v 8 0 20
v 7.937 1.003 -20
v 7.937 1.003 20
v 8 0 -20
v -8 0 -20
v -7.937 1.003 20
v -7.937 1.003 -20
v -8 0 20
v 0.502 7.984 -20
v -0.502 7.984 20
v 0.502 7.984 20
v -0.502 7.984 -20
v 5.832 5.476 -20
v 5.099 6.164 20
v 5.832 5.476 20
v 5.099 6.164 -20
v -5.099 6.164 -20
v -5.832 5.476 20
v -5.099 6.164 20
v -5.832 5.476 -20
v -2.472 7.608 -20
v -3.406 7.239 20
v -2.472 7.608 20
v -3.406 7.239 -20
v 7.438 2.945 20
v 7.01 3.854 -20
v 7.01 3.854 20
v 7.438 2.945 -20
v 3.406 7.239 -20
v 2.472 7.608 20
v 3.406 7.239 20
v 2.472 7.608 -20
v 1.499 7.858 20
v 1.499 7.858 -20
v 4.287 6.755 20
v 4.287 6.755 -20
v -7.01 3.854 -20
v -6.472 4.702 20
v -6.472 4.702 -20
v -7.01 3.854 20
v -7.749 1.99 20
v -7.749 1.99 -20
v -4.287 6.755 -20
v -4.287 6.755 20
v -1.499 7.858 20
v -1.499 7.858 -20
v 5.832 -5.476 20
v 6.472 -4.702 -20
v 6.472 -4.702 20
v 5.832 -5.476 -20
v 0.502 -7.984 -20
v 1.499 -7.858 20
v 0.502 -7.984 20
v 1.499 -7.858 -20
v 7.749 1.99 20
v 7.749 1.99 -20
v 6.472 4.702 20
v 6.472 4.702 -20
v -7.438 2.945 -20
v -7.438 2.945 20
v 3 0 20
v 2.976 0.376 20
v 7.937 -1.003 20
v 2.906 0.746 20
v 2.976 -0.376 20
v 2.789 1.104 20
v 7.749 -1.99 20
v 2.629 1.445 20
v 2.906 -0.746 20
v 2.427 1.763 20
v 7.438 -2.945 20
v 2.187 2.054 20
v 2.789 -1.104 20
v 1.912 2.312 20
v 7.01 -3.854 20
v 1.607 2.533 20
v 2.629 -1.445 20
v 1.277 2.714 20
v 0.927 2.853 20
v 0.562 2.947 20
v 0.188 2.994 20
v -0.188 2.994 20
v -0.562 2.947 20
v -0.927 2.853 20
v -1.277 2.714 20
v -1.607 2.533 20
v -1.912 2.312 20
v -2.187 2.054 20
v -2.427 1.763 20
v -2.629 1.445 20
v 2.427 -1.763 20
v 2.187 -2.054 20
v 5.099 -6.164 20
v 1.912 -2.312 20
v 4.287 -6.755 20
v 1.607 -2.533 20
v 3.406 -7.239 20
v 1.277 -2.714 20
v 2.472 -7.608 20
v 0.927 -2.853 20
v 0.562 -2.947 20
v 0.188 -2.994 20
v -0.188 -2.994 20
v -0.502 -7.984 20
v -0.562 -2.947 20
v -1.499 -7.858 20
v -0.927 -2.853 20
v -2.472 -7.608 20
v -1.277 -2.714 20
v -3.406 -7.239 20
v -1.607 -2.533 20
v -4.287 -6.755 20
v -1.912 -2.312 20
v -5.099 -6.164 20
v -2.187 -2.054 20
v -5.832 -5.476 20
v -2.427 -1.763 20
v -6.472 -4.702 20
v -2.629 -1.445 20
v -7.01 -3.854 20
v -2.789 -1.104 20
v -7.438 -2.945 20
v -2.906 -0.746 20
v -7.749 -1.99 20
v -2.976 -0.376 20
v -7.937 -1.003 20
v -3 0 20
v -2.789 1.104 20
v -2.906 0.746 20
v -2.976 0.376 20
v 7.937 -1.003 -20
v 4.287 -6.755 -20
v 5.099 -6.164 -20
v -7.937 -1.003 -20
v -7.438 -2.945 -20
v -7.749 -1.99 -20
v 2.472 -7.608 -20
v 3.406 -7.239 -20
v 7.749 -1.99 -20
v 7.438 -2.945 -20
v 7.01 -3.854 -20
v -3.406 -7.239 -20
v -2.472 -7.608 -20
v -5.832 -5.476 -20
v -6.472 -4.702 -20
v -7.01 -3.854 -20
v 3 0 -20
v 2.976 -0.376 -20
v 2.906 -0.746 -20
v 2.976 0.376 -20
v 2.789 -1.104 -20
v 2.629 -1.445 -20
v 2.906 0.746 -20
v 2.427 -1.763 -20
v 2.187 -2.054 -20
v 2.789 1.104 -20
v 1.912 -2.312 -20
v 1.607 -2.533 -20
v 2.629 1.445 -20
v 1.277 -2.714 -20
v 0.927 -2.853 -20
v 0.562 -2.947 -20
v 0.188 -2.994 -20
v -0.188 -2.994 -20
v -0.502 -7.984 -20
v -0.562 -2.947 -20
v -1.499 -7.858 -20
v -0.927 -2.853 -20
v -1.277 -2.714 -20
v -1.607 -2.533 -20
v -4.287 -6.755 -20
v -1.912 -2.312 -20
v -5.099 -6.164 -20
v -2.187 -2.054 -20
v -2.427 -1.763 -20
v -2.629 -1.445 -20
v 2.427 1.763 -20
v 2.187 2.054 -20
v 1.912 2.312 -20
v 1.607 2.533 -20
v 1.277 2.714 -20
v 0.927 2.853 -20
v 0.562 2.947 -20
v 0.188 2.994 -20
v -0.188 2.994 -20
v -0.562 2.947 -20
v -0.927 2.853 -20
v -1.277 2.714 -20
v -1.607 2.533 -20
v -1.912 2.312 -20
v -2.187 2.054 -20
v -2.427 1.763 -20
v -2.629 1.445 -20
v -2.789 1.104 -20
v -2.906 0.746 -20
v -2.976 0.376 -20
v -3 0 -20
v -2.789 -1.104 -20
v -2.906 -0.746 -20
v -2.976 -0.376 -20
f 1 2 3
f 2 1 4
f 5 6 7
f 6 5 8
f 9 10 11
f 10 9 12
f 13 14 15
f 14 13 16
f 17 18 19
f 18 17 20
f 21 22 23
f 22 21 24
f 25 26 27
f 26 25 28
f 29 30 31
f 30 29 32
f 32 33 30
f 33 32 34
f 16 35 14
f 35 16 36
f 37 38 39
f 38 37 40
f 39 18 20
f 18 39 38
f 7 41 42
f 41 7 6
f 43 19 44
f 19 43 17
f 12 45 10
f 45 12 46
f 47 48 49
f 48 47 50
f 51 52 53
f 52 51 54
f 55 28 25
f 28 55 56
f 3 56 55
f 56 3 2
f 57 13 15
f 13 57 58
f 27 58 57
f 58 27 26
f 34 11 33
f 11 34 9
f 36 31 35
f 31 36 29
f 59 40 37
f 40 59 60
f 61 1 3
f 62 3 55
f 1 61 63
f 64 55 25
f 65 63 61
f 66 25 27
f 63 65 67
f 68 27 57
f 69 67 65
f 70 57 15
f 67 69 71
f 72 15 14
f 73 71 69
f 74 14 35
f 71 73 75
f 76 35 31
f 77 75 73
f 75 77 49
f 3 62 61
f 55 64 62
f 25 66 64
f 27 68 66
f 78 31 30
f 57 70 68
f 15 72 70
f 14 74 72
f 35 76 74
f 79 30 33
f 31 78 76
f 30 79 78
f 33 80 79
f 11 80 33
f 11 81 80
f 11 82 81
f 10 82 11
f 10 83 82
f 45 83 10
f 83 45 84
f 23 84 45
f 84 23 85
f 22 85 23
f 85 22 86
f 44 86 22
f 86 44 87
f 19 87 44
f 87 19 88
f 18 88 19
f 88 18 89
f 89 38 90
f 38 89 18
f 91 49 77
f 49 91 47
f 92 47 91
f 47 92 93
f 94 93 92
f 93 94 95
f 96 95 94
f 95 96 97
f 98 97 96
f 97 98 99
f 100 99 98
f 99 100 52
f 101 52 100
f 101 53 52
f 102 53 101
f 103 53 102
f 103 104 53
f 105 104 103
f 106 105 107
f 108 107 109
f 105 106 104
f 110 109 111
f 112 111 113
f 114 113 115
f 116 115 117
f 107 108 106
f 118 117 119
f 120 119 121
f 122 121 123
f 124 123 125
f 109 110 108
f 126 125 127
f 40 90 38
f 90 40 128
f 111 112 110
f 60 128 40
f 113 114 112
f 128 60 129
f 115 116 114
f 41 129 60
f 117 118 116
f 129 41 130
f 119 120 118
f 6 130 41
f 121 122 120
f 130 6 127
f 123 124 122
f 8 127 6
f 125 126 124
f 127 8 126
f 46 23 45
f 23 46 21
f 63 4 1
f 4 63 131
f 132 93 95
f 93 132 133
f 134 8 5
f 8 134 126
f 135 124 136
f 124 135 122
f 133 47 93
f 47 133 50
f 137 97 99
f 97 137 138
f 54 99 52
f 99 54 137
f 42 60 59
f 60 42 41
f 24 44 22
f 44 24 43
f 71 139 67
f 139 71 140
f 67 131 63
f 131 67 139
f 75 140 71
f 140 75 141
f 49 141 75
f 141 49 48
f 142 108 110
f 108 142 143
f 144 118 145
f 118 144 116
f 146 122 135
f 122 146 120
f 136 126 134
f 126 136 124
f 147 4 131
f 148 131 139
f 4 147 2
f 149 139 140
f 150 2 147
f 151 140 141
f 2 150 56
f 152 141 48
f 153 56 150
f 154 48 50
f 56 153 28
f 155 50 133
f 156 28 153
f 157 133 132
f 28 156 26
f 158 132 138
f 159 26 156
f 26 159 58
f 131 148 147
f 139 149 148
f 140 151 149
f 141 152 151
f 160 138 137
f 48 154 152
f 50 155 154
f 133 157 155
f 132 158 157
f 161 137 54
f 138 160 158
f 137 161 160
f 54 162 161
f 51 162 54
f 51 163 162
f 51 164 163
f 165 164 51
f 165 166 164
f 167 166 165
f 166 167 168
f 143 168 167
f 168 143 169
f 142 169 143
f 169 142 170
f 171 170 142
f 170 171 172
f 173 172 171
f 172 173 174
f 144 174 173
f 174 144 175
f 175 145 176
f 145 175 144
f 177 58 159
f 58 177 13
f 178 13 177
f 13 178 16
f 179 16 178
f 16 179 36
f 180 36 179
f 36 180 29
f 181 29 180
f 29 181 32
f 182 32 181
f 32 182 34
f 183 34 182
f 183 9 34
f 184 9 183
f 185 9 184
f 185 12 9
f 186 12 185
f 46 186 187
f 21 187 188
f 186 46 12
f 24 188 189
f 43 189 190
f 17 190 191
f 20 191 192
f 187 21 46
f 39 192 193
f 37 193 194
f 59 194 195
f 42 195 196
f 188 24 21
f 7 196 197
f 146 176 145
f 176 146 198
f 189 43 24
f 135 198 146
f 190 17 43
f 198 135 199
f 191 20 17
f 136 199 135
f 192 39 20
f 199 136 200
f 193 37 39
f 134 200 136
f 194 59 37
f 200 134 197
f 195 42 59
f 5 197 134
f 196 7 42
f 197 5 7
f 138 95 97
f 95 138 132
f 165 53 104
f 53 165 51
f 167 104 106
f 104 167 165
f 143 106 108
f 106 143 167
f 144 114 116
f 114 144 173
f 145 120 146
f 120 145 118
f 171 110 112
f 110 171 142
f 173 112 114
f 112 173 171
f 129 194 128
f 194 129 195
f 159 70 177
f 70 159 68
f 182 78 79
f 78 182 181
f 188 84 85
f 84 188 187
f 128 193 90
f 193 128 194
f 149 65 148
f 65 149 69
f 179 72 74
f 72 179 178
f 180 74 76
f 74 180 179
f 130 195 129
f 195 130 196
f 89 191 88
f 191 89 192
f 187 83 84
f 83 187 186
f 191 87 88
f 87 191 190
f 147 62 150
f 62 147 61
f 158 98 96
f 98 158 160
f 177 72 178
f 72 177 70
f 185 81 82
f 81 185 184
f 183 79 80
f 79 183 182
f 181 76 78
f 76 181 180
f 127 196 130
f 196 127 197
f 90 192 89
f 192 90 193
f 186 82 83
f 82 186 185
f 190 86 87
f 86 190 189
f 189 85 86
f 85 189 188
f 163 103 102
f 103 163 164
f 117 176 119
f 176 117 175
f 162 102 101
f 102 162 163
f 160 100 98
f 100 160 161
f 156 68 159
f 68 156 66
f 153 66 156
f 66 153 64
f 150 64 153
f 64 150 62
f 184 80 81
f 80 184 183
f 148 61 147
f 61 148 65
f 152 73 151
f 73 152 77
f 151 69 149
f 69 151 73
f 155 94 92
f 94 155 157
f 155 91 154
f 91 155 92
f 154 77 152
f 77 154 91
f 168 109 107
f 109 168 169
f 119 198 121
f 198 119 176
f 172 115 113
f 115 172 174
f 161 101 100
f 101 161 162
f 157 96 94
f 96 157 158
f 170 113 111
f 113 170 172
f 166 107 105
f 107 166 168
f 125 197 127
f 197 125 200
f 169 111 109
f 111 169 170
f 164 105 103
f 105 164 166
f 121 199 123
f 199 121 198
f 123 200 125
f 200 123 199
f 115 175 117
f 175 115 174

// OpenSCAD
$fn = 50;


difference() {
	union() {
		translate(v = [0, 0, -20.0000000000]) {
			cylinder(h = 40, r = 8.0000000000);
		}
	}
	union() {
		translate(v = [0, 0, -100.0000000000]) {
			cylinder(h = 200, r = 3.0000000000);
		}
	}
}
